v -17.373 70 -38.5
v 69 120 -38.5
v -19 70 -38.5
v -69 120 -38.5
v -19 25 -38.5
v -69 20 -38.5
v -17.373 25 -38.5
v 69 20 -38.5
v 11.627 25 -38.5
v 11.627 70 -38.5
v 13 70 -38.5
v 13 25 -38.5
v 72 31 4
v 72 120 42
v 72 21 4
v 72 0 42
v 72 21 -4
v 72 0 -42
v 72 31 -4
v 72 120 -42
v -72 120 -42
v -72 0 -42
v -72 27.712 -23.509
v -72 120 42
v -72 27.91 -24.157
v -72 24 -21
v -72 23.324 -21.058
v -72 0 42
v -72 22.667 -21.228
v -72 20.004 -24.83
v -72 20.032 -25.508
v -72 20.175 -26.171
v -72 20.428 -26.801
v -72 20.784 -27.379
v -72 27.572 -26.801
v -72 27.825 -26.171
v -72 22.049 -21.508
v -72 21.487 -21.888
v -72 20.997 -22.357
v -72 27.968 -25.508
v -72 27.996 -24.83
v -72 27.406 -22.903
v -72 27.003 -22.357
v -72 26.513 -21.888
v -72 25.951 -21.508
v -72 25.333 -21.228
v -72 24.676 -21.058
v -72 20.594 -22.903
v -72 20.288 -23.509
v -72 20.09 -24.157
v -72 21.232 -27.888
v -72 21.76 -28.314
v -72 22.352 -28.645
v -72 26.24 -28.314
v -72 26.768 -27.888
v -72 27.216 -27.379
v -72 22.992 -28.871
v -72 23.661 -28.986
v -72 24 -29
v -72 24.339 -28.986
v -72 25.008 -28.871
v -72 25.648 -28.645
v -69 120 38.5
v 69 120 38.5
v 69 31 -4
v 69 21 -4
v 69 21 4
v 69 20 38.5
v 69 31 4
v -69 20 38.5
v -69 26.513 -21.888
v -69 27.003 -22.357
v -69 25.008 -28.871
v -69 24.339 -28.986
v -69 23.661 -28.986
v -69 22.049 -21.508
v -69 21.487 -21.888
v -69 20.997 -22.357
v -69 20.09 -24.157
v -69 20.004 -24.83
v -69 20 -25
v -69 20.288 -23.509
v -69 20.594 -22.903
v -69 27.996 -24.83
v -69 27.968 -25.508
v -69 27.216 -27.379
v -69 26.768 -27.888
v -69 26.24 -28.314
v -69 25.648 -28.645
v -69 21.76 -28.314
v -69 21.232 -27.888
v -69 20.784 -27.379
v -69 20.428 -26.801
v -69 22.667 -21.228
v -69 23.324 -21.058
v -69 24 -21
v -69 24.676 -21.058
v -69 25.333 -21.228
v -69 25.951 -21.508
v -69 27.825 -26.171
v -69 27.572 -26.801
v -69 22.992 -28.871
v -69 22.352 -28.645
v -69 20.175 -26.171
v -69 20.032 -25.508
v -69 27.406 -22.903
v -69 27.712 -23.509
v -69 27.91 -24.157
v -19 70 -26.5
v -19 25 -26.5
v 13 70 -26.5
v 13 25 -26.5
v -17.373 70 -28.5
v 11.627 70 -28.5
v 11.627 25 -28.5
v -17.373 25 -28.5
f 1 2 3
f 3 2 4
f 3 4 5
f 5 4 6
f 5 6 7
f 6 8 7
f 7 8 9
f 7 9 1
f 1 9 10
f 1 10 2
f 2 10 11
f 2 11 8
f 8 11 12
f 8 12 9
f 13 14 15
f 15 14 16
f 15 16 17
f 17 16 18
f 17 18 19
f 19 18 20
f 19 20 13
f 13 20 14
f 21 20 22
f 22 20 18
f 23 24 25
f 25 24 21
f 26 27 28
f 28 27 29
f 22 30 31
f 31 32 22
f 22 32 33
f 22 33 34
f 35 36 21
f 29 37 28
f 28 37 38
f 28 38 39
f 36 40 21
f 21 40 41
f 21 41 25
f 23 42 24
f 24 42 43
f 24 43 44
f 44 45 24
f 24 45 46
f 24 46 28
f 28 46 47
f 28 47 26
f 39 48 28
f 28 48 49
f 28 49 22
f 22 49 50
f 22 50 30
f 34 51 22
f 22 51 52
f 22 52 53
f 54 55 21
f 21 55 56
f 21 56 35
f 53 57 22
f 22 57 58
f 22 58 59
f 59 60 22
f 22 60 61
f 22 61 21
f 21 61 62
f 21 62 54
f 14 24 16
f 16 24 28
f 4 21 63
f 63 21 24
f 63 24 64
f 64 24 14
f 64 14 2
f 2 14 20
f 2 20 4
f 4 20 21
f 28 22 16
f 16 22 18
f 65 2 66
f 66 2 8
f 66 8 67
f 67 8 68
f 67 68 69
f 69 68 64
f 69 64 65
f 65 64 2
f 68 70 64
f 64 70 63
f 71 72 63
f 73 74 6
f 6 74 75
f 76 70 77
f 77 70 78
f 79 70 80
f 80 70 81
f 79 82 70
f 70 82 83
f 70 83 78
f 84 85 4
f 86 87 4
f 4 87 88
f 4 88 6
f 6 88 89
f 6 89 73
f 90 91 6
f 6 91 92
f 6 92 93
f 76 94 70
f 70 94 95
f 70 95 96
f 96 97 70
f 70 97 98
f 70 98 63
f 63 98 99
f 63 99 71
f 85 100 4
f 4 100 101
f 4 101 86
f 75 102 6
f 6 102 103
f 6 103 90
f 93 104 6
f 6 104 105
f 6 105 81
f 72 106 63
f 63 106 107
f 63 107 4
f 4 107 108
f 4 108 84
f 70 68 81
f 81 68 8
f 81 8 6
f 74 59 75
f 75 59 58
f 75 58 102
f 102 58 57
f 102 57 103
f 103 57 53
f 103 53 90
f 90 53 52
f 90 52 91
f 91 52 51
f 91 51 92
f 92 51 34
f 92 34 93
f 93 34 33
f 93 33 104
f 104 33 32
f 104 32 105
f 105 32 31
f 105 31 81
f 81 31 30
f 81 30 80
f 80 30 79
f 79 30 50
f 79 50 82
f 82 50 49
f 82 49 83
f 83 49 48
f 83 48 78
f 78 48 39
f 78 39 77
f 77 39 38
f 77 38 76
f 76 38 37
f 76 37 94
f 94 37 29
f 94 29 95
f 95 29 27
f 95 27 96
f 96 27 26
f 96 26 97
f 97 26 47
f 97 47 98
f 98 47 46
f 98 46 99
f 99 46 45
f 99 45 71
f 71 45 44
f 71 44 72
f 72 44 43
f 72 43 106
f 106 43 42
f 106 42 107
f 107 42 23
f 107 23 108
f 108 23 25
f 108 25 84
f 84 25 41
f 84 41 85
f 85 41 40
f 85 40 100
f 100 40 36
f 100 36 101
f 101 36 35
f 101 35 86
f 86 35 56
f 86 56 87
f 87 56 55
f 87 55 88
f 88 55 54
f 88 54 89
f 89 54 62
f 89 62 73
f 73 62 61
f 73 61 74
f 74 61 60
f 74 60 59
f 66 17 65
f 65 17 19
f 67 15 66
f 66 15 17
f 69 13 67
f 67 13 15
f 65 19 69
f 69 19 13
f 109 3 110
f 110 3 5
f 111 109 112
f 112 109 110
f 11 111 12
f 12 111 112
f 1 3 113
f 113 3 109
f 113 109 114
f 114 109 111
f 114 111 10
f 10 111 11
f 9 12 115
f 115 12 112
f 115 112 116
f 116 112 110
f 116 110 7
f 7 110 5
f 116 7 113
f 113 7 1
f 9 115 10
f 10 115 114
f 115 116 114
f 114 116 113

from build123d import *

# Parameters (mm, degrees)
SKETCH1_W           = 144
SKETCH1_H           = 84
BOSS_EXTRUDE1_DEPTH = 120
SKETCH2_W           = 138
SKETCH2_H           = 77
CUT_EXTRUDE1_DEPTH  = 100
SKETCH3_R           = 4
CUT_EXTRUDE3_DEPTH  = 50
SKETCH5_W           = 8
SKETCH5_H           = 10
CUT_EXTRUDE4_DEPTH  = 20
SKETCH4_W           = 32
SKETCH4_H           = 12
BOSS_EXTRUDE4_DEPTH = 45
SKETCH4_2_W         = 32
SKETCH4_2_H         = 12
BOSS_EXTRUDE5_DEPTH = 45
SKETCH11_W          = 29
SKETCH11_H          = 10
CUT_EXTRUDE5_DEPTH  = 45


with BuildPart() as part:
    # Sketch1 → Boss-Extrude1 (new body)
    with BuildSketch(Plane(origin=(0, 0, 0), x_dir=(1, 0, 0), z_dir=(0, 1, 0))):
        Rectangle(SKETCH1_W, SKETCH1_H)
    extrude(amount=BOSS_EXTRUDE1_DEPTH)

    # Sketch2 → Cut-Extrude1 (cut)
    with BuildSketch(Plane(origin=(0, 120, 0), x_dir=(1, 0, 0), z_dir=(0, 1, 0))):
        Rectangle(SKETCH2_W, SKETCH2_H)
    extrude(amount=-CUT_EXTRUDE1_DEPTH, mode=Mode.SUBTRACT)

    # Sketch3 → Cut-Extrude3 (cut, symmetric)
    with BuildSketch(Plane.ZY.offset(72)):
        with Locations((-25, 24)):
            Circle(SKETCH3_R)
    extrude(amount=CUT_EXTRUDE3_DEPTH, both=True, mode=Mode.SUBTRACT)

    # Sketch5 → Cut-Extrude4 (cut, symmetric)
    with BuildSketch(Plane(origin=(72, 0, 0), x_dir=(0, 0, -1), z_dir=(1, 0, 0))):
        with Locations((0, 26)):
            Rectangle(SKETCH5_W, SKETCH5_H)
    extrude(amount=CUT_EXTRUDE4_DEPTH, both=True, mode=Mode.SUBTRACT)

    # Sketch4 → Boss-Extrude4 (add)
    with BuildSketch(Plane(origin=(0, 25, 0), x_dir=(1, 0, 0), z_dir=(0, 1, 0))):
        with Locations((-3, 32.5)):
            Rectangle(SKETCH4_W, SKETCH4_H)
    extrude(amount=BOSS_EXTRUDE4_DEPTH)

    # Sketch4<2> → Boss-Extrude5 (add)
    with BuildSketch(Plane(origin=(0, 25, 0), x_dir=(1, 0, 0), z_dir=(0, 1, 0))):
        with Locations((-3, 32.5)):
            Rectangle(SKETCH4_2_W, SKETCH4_2_H)
    extrude(amount=BOSS_EXTRUDE5_DEPTH)

    # Sketch11 → Cut-Extrude5 (cut)
    with BuildSketch(Plane(origin=(0, 70, 0), x_dir=(1, 0, 0), z_dir=(0, 1, 0))):
        with Locations((-2.873413599, 33.5)):
            Rectangle(SKETCH11_W, SKETCH11_H)
    extrude(amount=-CUT_EXTRUDE5_DEPTH, mode=Mode.SUBTRACT)


solid = part.part
